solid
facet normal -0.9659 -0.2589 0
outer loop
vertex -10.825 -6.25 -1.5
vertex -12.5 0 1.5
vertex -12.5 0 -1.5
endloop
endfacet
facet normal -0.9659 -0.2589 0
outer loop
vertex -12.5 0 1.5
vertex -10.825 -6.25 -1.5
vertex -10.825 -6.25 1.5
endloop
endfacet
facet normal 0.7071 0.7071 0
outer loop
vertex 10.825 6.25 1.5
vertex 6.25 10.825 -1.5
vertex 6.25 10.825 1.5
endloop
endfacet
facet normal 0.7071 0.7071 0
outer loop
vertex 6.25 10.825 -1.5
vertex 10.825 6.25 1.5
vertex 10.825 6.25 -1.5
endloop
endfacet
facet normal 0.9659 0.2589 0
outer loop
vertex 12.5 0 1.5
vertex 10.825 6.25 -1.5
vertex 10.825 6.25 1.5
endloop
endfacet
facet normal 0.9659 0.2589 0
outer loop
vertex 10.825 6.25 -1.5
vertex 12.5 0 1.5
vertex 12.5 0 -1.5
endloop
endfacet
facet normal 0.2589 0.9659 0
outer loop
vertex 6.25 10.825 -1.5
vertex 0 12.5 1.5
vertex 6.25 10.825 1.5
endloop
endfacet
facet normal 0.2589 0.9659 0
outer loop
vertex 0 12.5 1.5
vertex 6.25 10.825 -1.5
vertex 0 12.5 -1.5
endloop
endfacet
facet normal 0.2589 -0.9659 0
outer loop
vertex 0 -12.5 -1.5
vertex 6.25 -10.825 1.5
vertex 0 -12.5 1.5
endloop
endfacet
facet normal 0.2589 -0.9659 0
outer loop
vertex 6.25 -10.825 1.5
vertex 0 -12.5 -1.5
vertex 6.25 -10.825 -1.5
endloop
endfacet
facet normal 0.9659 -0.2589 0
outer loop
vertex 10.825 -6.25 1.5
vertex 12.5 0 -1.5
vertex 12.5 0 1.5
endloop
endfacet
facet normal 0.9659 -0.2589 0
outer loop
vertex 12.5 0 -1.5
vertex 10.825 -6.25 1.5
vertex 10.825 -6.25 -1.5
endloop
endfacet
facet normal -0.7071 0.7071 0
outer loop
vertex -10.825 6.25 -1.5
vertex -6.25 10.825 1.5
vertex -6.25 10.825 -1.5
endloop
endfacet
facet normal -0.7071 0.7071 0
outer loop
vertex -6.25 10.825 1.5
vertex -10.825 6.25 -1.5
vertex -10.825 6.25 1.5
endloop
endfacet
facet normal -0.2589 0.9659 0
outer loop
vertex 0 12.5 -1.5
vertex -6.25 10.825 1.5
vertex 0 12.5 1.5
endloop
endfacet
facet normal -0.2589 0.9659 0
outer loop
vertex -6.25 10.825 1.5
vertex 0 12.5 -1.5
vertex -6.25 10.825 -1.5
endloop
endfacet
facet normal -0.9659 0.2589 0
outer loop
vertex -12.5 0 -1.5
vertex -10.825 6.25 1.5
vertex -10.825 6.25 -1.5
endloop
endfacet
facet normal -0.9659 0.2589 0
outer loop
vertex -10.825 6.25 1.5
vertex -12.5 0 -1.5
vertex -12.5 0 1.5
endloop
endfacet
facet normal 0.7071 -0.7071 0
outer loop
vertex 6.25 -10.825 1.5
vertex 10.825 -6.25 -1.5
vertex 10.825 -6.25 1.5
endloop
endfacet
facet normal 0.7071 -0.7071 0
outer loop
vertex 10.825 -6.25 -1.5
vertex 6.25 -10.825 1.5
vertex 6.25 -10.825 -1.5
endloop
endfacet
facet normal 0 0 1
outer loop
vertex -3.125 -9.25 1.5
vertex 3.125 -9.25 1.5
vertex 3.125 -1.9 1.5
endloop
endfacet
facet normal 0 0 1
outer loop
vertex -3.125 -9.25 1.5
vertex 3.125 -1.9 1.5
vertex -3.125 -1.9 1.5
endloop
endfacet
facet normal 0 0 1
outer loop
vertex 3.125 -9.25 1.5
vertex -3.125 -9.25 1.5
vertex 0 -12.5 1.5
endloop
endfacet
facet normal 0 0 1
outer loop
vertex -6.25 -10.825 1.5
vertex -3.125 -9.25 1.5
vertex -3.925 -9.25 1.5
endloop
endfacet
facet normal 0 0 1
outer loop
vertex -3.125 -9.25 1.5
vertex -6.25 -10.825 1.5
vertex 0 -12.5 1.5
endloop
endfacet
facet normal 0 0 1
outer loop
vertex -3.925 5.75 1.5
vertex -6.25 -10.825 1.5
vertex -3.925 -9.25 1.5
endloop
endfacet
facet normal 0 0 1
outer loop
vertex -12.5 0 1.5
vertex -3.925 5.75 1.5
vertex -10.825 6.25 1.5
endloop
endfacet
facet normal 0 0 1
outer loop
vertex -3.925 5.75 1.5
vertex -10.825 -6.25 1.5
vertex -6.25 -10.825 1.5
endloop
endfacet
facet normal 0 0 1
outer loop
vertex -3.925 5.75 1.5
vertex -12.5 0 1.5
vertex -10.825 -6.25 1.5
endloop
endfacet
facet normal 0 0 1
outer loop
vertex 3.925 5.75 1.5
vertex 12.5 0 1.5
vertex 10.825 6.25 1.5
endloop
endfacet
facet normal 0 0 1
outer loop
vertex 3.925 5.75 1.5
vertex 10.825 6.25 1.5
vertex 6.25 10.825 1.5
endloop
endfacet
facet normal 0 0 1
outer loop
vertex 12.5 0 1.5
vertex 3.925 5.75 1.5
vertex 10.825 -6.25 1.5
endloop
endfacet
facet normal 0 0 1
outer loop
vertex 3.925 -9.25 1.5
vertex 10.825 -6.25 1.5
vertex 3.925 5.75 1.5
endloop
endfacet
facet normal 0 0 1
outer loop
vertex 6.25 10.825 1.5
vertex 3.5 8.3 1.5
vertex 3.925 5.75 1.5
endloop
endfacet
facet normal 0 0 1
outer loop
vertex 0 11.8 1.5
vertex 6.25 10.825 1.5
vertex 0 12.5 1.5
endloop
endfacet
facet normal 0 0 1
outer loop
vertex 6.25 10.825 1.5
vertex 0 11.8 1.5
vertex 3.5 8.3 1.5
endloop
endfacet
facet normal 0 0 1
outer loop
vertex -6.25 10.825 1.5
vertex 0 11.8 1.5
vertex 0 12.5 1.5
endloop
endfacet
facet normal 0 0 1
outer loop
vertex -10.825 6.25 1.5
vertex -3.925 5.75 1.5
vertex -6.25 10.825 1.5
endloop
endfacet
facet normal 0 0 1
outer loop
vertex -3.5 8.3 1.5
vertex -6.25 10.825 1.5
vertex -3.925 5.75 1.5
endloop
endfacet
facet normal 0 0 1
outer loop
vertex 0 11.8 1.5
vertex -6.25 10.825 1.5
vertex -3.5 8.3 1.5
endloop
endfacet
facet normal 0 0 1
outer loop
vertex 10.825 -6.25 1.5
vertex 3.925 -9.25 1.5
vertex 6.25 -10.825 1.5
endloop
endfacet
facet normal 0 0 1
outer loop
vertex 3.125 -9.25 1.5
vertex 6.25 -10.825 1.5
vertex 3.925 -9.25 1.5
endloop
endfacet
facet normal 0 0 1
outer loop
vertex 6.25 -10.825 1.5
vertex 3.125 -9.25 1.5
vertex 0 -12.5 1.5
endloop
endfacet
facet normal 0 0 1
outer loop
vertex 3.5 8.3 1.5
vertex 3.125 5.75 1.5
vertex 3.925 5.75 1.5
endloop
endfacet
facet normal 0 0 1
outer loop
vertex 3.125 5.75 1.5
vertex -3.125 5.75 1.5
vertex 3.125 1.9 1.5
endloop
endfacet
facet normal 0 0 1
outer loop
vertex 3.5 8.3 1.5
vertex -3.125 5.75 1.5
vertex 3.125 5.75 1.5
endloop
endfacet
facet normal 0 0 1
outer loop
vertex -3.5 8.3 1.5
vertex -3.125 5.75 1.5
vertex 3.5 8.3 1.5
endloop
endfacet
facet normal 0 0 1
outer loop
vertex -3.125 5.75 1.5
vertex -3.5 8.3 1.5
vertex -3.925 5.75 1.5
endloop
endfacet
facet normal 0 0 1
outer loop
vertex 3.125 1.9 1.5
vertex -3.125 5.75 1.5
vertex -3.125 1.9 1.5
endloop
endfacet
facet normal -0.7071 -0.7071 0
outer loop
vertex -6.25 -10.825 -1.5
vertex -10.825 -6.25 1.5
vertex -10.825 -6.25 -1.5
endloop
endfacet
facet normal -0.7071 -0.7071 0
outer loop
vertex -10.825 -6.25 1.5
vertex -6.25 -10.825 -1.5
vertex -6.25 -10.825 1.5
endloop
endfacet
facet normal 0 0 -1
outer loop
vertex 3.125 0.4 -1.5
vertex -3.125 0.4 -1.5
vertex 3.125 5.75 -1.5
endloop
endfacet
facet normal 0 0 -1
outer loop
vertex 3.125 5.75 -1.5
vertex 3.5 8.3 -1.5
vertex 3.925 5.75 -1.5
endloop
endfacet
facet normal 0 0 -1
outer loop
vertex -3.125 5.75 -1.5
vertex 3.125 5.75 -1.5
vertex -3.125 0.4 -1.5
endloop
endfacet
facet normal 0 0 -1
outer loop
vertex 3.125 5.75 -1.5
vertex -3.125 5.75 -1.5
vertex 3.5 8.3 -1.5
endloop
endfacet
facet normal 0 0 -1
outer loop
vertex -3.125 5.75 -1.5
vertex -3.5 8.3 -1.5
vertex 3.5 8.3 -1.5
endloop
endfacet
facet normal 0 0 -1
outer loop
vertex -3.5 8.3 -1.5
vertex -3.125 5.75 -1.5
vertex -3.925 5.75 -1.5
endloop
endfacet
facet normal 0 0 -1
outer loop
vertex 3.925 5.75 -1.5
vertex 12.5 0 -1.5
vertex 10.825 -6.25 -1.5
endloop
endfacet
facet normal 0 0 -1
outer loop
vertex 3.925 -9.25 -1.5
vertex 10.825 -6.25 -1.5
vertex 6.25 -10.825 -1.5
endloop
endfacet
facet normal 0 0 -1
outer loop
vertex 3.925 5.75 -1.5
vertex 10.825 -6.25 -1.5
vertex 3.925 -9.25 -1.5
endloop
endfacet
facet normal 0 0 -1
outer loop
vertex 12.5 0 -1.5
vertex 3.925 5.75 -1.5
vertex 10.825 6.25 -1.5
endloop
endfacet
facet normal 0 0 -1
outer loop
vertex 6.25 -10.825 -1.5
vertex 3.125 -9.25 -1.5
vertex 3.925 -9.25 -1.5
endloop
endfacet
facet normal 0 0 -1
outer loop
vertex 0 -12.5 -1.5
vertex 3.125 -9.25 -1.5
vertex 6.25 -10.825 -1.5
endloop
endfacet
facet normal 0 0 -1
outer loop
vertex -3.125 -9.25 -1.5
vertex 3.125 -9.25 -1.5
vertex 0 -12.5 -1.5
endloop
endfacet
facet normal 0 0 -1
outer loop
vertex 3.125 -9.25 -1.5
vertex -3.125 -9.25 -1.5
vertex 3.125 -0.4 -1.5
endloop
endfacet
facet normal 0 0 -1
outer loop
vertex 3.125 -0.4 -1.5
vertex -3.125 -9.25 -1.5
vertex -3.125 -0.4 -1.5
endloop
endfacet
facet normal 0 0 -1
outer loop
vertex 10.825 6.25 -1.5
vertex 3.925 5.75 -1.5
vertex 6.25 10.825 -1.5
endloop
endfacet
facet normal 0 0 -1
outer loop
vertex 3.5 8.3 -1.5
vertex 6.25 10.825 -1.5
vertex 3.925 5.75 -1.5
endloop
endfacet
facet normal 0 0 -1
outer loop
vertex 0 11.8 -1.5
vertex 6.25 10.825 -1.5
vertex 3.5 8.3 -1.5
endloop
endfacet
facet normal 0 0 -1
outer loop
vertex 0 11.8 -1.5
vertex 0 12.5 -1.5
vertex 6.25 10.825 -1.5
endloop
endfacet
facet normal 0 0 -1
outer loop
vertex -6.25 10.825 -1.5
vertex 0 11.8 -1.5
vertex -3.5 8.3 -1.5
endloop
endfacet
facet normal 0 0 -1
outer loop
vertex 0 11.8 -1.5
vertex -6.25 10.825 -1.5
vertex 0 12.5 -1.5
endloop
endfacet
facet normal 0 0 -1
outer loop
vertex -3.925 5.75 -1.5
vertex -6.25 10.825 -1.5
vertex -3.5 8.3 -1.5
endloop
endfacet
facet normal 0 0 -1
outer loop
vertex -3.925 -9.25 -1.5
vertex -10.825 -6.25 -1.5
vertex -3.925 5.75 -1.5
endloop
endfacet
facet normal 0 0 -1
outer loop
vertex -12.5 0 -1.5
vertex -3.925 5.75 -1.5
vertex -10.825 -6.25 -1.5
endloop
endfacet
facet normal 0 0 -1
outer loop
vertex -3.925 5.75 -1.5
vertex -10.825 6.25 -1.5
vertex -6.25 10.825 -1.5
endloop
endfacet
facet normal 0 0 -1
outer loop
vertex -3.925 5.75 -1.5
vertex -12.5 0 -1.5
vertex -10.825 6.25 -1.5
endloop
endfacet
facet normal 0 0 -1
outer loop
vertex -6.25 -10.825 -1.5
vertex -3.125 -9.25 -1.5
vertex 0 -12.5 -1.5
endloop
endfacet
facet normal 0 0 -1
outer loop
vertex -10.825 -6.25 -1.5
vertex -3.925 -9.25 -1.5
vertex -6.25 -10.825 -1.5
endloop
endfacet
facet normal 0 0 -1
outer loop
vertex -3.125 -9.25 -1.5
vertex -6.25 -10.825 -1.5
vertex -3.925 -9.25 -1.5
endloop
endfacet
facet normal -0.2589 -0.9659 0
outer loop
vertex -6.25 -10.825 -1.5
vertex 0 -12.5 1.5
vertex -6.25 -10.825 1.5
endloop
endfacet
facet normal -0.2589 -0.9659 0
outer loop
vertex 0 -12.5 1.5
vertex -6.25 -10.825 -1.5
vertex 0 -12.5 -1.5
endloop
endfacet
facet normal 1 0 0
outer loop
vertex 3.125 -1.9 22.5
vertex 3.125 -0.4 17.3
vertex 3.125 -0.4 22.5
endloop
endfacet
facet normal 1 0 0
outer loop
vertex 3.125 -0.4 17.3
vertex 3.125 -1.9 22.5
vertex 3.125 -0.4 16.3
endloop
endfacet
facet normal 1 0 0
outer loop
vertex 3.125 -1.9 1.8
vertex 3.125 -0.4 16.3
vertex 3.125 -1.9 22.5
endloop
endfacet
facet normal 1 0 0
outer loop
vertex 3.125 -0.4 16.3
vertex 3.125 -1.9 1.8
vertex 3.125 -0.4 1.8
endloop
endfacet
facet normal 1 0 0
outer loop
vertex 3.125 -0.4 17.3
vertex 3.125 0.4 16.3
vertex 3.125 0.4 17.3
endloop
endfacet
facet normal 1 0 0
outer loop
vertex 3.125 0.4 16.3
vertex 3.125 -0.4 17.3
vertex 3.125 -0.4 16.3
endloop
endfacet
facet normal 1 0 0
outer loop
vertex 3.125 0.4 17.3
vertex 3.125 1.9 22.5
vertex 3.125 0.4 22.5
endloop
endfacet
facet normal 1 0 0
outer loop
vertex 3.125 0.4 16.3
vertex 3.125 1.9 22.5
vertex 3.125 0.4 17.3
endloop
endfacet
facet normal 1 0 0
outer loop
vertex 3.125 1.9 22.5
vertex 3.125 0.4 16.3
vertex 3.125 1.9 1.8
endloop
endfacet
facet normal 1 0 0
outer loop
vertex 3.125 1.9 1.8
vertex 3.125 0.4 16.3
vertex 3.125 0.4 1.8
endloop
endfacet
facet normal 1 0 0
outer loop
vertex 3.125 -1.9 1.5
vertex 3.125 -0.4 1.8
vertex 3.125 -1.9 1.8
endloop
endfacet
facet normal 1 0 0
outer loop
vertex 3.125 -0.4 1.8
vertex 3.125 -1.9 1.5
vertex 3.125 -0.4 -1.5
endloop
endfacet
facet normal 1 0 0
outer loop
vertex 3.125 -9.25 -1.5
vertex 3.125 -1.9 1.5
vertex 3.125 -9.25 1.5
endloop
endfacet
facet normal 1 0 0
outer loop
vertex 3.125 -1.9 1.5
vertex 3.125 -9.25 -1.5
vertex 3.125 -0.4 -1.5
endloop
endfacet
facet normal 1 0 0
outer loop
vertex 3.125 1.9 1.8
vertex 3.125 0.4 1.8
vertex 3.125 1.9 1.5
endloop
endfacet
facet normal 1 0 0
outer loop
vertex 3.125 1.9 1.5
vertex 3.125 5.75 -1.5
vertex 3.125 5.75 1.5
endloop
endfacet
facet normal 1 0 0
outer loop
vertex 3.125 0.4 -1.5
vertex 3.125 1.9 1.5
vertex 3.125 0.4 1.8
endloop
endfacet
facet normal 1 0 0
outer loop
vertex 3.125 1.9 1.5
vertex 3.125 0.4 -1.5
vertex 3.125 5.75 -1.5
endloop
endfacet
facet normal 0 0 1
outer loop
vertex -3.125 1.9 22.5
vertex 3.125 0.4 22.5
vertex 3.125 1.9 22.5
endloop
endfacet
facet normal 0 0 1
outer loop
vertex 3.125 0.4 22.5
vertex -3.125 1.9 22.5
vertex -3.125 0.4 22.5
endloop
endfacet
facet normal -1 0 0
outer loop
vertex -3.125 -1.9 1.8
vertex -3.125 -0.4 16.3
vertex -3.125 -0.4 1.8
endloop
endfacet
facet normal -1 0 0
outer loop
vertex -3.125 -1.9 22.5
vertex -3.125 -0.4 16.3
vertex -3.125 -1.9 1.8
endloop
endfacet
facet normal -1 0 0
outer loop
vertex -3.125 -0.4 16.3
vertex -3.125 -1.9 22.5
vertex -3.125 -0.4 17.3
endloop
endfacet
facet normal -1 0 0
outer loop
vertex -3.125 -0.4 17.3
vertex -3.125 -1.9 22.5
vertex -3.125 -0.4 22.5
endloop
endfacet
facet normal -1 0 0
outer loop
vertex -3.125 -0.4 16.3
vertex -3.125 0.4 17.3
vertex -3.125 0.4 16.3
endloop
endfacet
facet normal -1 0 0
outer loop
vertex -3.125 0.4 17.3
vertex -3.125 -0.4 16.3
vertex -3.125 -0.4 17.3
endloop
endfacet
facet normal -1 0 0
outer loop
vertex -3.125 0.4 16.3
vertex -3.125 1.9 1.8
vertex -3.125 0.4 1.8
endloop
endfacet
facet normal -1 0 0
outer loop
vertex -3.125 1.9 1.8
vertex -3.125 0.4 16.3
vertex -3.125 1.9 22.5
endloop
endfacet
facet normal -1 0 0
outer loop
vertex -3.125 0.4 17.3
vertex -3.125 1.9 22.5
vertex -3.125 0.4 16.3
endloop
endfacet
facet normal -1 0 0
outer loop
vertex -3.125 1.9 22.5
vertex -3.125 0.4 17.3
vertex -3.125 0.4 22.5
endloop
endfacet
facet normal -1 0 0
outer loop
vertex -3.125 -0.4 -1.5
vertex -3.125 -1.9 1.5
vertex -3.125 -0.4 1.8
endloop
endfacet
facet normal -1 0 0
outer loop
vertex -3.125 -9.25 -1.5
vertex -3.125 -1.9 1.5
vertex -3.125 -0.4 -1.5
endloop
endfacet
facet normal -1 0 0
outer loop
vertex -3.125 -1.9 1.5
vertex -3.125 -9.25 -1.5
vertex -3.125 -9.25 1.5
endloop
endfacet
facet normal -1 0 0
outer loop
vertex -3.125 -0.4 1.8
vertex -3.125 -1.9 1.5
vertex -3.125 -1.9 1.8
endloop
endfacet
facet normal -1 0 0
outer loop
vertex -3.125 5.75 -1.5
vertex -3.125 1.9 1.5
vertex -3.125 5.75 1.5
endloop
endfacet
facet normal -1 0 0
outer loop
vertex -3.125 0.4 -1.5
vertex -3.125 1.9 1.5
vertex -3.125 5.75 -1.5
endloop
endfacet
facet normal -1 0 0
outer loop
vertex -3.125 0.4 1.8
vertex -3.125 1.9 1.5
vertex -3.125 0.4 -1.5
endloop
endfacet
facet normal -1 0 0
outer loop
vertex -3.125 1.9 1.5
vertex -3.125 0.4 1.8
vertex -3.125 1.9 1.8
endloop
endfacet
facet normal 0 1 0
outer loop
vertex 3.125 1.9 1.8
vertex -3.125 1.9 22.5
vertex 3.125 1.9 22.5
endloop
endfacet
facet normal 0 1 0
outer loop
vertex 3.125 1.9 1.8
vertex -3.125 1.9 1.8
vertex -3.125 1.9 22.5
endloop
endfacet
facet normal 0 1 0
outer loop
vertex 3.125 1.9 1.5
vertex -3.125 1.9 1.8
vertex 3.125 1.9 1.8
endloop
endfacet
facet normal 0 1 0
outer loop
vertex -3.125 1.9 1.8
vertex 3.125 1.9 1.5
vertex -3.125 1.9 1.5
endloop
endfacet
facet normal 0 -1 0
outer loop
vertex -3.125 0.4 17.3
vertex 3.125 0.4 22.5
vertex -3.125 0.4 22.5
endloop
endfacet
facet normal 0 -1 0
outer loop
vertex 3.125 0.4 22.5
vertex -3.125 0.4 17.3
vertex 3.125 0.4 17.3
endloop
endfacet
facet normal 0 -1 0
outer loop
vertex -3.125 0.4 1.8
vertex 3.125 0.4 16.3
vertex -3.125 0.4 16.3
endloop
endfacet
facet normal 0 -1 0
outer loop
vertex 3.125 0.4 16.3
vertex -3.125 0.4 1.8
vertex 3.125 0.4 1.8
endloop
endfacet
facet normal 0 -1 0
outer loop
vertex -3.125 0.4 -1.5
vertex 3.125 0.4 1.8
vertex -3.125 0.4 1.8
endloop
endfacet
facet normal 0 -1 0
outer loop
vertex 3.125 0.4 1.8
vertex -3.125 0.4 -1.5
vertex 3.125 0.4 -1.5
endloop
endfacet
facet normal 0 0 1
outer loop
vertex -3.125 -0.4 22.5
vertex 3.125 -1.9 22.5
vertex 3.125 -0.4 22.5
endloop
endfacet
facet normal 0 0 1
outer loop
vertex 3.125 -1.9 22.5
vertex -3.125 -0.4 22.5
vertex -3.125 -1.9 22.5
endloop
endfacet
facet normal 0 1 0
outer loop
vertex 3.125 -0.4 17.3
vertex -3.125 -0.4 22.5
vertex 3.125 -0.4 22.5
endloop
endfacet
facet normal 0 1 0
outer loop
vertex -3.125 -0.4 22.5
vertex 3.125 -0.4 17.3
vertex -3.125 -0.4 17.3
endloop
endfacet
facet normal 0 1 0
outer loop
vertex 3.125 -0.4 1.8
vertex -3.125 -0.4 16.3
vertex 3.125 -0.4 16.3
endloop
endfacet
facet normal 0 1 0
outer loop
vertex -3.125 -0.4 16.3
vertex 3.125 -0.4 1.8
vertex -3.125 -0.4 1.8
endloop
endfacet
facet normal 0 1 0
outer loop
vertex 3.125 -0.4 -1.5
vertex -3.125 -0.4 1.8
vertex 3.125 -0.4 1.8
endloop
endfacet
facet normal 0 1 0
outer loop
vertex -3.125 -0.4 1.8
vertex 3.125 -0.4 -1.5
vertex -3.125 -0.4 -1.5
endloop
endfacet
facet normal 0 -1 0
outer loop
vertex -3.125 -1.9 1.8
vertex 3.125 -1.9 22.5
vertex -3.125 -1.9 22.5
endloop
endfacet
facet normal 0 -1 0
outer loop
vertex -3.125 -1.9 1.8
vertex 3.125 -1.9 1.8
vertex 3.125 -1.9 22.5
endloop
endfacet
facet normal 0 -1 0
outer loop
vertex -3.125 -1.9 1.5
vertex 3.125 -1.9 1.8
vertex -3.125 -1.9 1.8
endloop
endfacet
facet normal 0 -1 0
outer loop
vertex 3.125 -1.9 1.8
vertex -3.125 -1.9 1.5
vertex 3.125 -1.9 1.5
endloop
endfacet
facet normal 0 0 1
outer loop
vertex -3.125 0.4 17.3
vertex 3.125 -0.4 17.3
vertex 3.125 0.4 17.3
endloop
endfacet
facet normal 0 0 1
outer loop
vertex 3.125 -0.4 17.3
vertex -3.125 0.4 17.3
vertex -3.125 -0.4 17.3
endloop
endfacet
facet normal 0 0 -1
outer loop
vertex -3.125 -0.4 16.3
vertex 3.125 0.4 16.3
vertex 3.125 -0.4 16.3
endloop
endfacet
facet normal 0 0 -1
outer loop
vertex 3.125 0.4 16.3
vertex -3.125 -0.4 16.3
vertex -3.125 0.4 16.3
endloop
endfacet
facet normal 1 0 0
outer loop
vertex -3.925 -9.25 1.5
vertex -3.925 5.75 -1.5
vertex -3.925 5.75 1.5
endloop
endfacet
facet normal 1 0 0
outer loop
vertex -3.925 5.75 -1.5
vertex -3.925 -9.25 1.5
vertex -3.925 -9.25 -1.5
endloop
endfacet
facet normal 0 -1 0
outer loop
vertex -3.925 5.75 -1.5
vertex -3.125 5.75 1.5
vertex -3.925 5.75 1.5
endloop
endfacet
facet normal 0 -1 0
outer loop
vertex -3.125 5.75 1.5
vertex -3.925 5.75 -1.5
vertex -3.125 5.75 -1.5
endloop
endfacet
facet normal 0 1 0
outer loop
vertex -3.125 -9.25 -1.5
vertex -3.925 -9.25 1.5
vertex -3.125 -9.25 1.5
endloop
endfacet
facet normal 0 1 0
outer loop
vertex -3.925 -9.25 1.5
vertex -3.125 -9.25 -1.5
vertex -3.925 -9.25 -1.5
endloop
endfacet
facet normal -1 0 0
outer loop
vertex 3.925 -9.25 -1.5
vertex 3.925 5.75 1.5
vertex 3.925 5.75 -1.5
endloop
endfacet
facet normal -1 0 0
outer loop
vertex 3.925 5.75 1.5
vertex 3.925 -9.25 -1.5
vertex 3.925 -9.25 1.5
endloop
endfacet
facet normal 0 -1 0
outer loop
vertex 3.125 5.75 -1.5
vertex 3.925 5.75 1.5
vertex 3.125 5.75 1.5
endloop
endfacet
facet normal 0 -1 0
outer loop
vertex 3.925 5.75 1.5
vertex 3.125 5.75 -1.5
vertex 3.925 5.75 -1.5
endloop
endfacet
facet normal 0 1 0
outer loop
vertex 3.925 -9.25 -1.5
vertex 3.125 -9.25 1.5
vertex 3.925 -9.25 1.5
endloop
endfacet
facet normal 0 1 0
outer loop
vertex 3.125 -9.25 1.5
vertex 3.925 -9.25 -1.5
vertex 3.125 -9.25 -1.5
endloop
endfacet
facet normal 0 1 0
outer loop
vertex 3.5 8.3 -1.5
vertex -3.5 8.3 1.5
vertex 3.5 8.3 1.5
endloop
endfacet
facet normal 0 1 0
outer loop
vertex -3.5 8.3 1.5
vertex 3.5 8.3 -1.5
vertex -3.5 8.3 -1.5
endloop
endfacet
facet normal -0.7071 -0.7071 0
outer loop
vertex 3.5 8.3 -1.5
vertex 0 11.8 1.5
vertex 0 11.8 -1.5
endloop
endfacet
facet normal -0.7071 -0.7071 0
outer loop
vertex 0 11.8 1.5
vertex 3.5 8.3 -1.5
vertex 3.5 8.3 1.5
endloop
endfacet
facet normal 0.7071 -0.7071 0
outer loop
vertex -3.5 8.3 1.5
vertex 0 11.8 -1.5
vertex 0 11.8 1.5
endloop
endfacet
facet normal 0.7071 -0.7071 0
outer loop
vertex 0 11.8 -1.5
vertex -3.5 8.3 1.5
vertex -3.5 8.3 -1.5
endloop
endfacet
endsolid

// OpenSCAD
$fn=12;

// unit is mm

diameter = 25;
thickness = 3;
slit_width = 0.8;
arrow_base = 7;
support_height = 21;

ab_2 = arrow_base / 2;
ab_4 = arrow_base / 4;
thickness_2 = thickness / 2;
thickness_4 = thickness / 4;
thickness12 = 1.2 * thickness;
diameter_2 = diameter / 2;
diameter_4 = diameter / 4;
diameter_8 = diameter / 8;
sw_2 = slit_width / 2;
sh_2 = support_height / 2;


difference() {

  union() {

    // base

    cylinder(d=diameter, h=thickness, center=true);

    // support

    translate([ 0, thickness_4 + sw_2, thickness_2 + sh_2 ])
      cube([ diameter_4, thickness_2, support_height ], center=true);
    translate([ 0, -thickness_4 - sw_2, thickness_2 + sh_2 ])
      cube([ diameter_4, thickness_2, support_height ], center=true);

    #translate([ 0, 0, 0.80 * support_height ])
      cube([ diameter_4, 1, 1 ], center=true);
  }

  union() {

    // H

    translate([ 0, 0, 0 ])
      cube([ diameter_4, slit_width, thickness12 ], center=true);
    translate([ -diameter_8 - sw_2, -ab_4, 0 ])
      cube([ slit_width, 0.6 * diameter, thickness12 ], center=true);
    translate([ diameter_8 + sw_2, -ab_4, 0 ])
      cube([ slit_width, 0.6 * diameter, thickness12 ], center=true);

    // arrow

    translate([ 0, diameter_2 - 1.2 * ab_2, -0.5 * thickness12 ])
      linear_extrude(thickness12)
        polygon([
          [ -ab_2, 0 ], [ 0, ab_2 ], [ ab_2, 0 ] ]);
  }
}
